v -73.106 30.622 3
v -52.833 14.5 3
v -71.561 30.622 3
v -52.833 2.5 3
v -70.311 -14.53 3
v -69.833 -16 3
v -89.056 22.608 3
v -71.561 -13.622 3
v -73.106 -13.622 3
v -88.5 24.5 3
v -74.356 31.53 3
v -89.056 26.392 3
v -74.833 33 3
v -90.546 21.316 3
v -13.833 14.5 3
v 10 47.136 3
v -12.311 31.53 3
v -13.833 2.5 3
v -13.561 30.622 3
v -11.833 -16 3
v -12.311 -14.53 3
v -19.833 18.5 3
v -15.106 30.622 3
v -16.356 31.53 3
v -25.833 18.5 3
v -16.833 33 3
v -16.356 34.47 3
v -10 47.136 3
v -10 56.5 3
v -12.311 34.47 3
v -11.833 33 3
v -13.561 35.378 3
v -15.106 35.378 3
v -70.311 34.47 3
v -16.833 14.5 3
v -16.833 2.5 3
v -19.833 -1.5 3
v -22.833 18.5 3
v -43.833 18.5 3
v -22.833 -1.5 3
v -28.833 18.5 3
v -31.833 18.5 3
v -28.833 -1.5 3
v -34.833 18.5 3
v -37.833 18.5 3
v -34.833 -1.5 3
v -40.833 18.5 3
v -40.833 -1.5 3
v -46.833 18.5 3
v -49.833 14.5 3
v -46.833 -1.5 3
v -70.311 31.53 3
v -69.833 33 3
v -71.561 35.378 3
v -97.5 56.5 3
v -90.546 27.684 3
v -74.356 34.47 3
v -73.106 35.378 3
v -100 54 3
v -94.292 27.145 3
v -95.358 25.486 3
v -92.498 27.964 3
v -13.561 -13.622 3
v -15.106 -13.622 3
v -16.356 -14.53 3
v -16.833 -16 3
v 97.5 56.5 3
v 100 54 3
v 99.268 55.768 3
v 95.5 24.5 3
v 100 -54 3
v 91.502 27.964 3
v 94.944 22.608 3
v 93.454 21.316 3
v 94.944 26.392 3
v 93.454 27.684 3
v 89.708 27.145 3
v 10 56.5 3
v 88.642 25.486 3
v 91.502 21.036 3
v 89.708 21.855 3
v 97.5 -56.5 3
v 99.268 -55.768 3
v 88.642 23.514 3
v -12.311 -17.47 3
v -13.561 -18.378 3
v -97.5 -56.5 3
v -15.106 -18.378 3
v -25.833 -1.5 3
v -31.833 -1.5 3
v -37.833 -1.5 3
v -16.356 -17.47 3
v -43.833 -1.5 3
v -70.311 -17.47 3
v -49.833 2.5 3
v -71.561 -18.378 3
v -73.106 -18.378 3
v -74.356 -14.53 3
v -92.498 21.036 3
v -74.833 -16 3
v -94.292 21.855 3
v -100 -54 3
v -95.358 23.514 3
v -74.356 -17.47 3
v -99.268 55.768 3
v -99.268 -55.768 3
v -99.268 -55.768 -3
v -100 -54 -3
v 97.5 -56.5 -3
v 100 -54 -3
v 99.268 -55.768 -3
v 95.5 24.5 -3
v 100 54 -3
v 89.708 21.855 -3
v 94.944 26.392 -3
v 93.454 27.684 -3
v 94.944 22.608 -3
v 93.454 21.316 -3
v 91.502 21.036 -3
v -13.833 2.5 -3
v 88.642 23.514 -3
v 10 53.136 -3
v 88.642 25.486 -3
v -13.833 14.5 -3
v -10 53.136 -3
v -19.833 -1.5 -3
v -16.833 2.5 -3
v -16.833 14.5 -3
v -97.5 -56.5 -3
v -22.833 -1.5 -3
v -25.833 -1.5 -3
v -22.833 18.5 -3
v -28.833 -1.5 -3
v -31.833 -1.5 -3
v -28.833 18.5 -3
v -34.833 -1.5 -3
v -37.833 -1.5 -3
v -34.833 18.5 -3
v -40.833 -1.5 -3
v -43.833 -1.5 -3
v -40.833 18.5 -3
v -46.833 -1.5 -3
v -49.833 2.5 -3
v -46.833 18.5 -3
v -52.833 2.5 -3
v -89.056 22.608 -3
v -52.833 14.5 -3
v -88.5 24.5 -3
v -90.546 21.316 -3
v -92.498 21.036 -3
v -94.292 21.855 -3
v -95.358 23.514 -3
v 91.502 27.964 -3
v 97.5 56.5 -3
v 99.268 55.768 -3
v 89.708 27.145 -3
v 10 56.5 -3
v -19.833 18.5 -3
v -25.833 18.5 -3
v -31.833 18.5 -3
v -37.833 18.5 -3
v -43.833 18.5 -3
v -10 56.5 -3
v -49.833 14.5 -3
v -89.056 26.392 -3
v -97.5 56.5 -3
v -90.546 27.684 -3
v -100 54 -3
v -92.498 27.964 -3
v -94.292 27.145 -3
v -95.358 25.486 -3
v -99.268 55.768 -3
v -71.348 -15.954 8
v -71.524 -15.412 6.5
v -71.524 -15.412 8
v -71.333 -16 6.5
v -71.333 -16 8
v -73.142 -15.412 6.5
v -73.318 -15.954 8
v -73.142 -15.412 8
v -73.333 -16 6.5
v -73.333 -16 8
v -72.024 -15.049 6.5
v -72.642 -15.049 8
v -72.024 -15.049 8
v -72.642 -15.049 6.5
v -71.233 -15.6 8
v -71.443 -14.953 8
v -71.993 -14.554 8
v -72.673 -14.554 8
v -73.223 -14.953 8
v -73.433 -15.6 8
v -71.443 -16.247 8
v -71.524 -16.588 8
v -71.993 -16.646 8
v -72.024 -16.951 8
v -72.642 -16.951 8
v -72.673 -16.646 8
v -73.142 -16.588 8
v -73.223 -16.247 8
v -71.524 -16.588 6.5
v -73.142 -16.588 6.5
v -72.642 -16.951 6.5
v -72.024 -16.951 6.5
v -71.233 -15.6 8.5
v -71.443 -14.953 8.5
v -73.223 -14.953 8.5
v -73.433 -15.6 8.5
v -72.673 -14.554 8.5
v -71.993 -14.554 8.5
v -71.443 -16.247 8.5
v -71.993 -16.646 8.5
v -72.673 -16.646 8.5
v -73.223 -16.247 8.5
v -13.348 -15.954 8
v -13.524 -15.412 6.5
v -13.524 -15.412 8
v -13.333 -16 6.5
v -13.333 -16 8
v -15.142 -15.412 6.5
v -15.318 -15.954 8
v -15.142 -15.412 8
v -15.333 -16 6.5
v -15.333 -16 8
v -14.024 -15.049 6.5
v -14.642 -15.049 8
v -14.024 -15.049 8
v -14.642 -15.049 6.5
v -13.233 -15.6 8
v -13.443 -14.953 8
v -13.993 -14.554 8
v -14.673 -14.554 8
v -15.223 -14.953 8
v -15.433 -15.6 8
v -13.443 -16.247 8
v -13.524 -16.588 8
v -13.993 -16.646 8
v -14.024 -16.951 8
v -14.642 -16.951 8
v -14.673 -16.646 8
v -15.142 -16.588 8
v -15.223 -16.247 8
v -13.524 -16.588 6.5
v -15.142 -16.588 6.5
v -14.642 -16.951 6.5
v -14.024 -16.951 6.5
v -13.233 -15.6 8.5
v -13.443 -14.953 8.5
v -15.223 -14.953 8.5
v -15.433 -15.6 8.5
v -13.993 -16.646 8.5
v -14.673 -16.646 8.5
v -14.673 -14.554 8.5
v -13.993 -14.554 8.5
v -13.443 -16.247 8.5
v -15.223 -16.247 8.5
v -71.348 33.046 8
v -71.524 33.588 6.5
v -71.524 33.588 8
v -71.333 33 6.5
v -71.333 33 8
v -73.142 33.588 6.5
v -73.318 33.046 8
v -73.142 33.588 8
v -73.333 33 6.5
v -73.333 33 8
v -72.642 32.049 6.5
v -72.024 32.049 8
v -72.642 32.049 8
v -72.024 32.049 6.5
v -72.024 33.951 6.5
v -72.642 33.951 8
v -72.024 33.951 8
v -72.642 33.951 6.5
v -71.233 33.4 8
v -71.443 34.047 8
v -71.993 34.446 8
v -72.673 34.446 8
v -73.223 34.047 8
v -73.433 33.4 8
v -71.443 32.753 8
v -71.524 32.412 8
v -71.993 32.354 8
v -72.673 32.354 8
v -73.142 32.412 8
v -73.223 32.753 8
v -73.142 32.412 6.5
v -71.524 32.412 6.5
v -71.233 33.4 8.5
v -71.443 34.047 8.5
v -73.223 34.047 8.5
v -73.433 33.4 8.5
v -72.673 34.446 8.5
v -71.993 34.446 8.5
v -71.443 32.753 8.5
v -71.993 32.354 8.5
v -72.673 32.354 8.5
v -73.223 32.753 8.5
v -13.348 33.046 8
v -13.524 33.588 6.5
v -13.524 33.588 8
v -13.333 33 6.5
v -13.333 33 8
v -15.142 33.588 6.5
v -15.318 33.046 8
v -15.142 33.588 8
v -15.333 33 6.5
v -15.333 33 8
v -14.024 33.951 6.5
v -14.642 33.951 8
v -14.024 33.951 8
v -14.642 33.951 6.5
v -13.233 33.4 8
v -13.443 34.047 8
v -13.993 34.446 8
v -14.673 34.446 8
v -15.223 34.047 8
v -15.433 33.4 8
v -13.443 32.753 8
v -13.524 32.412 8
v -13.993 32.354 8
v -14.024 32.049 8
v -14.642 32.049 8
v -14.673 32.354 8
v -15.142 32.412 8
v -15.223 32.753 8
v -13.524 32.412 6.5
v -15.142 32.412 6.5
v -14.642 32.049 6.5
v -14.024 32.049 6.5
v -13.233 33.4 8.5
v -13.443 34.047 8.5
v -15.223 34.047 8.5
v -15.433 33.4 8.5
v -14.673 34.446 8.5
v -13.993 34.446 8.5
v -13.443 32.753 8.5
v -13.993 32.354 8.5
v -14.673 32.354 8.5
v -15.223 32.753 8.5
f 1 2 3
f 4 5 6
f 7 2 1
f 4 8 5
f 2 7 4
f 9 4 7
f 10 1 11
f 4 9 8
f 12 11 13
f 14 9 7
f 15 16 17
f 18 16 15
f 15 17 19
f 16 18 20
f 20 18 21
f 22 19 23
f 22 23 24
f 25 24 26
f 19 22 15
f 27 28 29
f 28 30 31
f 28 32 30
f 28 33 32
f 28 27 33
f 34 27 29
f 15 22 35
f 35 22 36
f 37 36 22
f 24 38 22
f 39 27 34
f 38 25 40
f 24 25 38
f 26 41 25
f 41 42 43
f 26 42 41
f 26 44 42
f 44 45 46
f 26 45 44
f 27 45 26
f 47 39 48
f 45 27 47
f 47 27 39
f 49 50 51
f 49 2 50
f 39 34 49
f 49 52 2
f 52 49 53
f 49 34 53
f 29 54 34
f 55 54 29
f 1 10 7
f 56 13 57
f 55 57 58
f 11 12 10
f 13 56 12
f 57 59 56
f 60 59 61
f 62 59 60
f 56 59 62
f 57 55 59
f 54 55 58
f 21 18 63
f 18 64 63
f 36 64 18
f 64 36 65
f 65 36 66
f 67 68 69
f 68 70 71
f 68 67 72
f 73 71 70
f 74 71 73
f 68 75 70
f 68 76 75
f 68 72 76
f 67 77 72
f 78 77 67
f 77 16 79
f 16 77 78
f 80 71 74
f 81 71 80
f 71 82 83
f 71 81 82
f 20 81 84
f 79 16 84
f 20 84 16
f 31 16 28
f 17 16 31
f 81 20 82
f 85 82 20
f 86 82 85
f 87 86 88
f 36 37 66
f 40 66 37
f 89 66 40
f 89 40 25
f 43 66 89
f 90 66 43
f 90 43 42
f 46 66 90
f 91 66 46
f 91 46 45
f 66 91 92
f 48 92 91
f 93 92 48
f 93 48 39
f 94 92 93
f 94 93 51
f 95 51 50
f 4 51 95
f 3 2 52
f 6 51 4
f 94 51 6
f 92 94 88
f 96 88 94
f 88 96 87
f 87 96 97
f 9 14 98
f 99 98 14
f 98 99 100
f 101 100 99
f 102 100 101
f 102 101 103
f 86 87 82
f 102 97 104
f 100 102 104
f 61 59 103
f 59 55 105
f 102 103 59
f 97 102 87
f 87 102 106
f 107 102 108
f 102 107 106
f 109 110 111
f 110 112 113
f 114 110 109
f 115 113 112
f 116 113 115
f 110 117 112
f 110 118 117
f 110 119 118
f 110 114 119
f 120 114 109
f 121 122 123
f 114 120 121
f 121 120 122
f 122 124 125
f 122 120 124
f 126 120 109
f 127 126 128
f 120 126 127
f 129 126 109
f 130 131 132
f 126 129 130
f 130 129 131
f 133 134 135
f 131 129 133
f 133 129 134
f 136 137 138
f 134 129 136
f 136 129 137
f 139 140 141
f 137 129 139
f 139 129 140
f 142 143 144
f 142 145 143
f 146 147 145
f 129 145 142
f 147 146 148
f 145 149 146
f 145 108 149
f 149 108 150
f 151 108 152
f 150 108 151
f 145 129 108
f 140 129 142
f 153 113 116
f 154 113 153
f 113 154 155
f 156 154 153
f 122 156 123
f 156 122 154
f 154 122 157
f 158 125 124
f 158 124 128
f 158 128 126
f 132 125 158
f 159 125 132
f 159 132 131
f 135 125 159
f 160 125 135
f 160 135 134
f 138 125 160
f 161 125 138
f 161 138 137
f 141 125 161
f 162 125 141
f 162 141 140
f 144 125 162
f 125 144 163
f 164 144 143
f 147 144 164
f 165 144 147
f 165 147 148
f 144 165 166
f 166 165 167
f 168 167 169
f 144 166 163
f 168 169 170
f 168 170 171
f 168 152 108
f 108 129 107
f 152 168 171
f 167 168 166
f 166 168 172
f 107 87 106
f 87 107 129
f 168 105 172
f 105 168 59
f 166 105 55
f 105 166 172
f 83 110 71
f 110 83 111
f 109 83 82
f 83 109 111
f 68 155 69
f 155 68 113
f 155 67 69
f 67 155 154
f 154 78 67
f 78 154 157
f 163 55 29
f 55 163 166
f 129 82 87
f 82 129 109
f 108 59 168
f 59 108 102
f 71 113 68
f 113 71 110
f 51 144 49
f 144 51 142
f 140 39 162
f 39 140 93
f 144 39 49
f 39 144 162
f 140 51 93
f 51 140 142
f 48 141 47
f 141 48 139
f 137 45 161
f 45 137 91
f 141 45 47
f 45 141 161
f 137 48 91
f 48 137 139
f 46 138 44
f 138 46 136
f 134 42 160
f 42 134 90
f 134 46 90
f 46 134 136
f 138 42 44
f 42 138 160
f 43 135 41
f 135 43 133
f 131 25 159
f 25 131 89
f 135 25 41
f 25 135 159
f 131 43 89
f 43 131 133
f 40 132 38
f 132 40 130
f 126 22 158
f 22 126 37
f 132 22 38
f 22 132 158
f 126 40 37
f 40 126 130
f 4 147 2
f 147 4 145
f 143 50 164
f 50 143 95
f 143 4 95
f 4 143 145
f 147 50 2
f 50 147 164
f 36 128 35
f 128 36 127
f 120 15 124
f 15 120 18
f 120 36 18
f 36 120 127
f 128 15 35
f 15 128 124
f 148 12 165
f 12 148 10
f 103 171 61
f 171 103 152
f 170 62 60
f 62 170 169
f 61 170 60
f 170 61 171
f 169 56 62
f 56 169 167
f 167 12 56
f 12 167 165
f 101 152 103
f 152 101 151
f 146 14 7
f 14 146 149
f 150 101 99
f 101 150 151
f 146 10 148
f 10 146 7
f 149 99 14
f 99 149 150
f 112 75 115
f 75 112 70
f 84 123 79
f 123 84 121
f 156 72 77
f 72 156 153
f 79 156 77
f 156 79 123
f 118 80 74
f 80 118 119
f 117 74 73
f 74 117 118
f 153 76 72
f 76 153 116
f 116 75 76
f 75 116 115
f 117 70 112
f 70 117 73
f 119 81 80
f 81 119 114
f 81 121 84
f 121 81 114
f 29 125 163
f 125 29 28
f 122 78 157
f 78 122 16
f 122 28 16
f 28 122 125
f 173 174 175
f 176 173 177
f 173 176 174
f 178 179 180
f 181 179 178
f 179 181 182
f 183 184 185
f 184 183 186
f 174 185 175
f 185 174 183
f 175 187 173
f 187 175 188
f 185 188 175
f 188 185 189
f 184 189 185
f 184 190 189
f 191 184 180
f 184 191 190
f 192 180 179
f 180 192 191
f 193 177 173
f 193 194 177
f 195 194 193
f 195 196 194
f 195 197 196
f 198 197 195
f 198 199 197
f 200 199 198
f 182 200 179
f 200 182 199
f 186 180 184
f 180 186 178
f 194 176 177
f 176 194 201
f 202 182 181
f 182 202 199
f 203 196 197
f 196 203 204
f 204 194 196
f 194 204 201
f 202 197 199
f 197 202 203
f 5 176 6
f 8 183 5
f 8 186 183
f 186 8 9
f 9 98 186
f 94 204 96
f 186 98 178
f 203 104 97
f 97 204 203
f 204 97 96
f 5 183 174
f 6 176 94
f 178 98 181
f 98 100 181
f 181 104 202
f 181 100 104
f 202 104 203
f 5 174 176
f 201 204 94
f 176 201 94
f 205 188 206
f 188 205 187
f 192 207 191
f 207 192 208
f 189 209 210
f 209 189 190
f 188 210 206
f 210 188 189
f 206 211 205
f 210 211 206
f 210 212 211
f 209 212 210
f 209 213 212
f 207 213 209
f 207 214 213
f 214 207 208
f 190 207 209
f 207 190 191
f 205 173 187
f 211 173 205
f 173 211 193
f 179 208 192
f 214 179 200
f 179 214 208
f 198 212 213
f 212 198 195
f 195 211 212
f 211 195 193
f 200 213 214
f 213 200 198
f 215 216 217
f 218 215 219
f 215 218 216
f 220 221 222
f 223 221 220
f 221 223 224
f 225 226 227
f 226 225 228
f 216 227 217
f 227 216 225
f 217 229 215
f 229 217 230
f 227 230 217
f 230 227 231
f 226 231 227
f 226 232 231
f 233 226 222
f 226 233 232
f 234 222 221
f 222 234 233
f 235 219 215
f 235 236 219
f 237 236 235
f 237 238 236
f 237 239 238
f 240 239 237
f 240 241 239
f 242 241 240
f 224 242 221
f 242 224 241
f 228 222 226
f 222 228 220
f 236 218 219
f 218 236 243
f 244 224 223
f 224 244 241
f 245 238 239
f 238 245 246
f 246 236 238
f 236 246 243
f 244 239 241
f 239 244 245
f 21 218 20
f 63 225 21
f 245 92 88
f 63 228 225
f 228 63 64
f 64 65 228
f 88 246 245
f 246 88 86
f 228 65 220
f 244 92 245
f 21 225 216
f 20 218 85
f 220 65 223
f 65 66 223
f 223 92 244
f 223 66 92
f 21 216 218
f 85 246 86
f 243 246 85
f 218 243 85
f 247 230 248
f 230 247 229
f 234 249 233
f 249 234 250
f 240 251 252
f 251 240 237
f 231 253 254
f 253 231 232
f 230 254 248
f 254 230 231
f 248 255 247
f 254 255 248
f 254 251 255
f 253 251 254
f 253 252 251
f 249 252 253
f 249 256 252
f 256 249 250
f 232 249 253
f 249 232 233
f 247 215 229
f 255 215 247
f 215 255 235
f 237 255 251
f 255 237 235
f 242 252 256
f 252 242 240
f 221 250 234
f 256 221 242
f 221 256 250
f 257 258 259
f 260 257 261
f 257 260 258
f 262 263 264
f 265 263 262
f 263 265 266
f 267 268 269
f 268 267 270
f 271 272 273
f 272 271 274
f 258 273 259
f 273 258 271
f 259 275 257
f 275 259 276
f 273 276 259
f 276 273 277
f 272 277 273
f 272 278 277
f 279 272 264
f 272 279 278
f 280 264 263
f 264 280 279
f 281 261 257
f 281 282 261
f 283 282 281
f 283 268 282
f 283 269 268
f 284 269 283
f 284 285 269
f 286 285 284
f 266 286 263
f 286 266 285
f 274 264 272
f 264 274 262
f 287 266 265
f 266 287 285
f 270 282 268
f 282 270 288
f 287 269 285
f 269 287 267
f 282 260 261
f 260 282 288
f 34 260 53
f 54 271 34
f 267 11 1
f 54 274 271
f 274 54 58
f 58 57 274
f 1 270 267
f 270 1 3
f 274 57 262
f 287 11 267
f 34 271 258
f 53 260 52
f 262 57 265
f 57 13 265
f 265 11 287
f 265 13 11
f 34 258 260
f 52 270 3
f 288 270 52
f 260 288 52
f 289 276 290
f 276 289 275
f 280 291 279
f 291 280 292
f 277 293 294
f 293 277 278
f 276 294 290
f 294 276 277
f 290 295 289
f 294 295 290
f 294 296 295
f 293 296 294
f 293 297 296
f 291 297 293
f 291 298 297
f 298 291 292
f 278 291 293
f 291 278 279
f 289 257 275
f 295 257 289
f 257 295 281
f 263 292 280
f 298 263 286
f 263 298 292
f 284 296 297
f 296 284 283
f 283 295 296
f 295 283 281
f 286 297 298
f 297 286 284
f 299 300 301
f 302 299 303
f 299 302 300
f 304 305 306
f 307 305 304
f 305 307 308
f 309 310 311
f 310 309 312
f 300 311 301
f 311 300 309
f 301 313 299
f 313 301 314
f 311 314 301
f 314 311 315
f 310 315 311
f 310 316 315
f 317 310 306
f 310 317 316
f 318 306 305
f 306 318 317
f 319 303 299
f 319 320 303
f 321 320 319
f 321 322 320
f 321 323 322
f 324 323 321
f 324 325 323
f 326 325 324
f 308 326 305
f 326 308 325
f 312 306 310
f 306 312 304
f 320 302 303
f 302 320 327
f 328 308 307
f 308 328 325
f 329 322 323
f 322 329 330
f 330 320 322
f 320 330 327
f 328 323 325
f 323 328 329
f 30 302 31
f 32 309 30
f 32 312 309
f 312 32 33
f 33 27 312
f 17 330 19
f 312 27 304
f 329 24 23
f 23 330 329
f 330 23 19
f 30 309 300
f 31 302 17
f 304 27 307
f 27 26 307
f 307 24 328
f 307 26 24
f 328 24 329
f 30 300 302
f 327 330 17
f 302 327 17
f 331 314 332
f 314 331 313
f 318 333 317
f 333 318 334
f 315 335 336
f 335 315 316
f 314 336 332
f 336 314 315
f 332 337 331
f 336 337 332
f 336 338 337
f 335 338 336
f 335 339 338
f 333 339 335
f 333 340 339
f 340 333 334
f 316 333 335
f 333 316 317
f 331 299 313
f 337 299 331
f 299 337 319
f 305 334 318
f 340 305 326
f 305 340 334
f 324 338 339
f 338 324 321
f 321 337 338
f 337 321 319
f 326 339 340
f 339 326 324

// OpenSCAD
// file: lib/PiHole/PiHole.scad
//Shut your Pi Hole! 
//An OpenSCAD library to assist with designing Raspberry Pi accessories

//This work is licensed under the Creative Commons Attribution-ShareAlike 4.0 International License. To view a copy of this license, visit http://creativecommons.org/licenses/by-sa/4.0/.
//© 2016 Dale Price

//Pi dimensions sourced from https://www.raspberrypi.org/documentation/hardware/raspberrypi/mechanical/
//Currently supports "1B", "1A+", "1B+", "2B", "3B", "Zero"

//get vector of [x,y] vectors of locations of mounting holes based on Pi version
function piHoleLocations (board="3B") = 
	(board=="1A+" || board=="1B+" || board=="2B" || board=="3B") ?
		[[3.5, 3.5], [61.5, 3.5], [3.5, 52.5], [61.5, 52.5]] : //pi 1B+, 2B, 3B
	(board=="Zero") ?
		[[3.5, 3.5], [61.5, 3.5], [3.5, 26.5], [61.5, 26.5]] : //pi zero
	(board=="1B") ?
		[[80, 43.5], [25, 17.5]] :
	[]; //invalid board

//get vector of [x,y,z] dimensions of board
//	dimensions are for PCB only, not ports or anything else
function piBoardDim (board="3B") =
	(board=="1B" || board=="1B+" || board=="2B" || board=="3B") ?
		[85, 56, 1.25] :
	(board=="Zero") ?
		[65, 30, 1.25] :
	(board == "1A+") ?
		[65, 56, 1.25] :
	[0,0,0];

//Mounting holes for a Raspberry Pi of the specified version
//	Parameters
//		board: the version of the raspberry pi to generate holes for
//		depth: the depth of the holes in mm
module piHoles (board, depth = 5, preview=true) {
	hd = 2.8; //radius of pi mounting holes plus a tiny bit extra to account for shrinkage when 3D printing
	hr = hd/2;

	//preview of the board itself
	if(preview==true)
		% piBoard(board);
	
	//mounting holes
	for(holePos = piHoleLocations(board)) {
		translate([holePos[0], holePos[1], -depth]) cylinder(d=hd, h=depth);
	}
}

//Preview of board dimensions for Raspberry Pi of the specified version
module piBoard (board) {
	difference() {
		cube(piBoardDim(board), center=false);
		translate([0,0,piBoardDim(board)[2] + 0.01]) piHoles(board, piBoardDim(board)[2] + 0.02, false);
	}

	//warn about possible inaccuracy of boards that don't currently have official documentation
	if(board == "1B") {
		echo("CAUTION: The mounting hole positions for the board you have selected may not be accurate because the Raspberry Pi Foundation does not currently provide official mechanical drawings for it.");
	}
}

//Snap-fit posts for mounting the Raspberry Pi
//	Parameters
//		board: version of the raspberry pi to mount
//		height: height of the top surface of the raspberry pi board off the base of the posts
//		preview: whether or not to show a preview of the board in place
module piPosts(board, height=5, preview=true) {
	piSize = piBoardDim(board);
	piHolePos = piHoleLocations(board);

	module pcbPost(height) {
		cylinder(d=2, h=height);
		cylinder(d1=5, d2=2, h=height - piSize[2] - 0.25);

		translate([0, 0.4, height]) scale([1.1, 1.1, 1]) cylinder(d=2, h=0.5);
	}
	
	for(holePos = piHolePos) {
		translate([holePos[0], holePos[1], 0]) pcbPost(height);
	}

	if(preview==true)
		% translate([0,0,height-piSize[2]]) piBoard(board);
}

color("DarkGreen", 1, $fn=20) {
	piBoard("3B");
    piPosts("3B");
}
// main file
/*
PiPlate for Rostock Max
© 2016 Dale Price daprice@mac.com

	This program is free software: you can redistribute it and/or modify
    it under the terms of the GNU Affero General Public License as published
    by the Free Software Foundation, either version 3 of the License, or
    (at your option) any later version.

    This program is distributed in the hope that it will be useful,
    but WITHOUT ANY WARRANTY; without even the implied warranty of
    MERCHANTABILITY or FITNESS FOR A PARTICULAR PURPOSE.  See the
    GNU Affero General Public License for more details.

    You should have received a copy of the GNU Affero General Public License
    along with this program.  If not, see <http://www.gnu.org/licenses/>.
*/

//---------------------
//      Settings
//---------------------

/* [Printer Config (default: Rostock Max v2)] */

//the width of the Rostock Max side panel (mm)
panelWidth = 200;

//the height of the Rostock Max side panel
panelHeight = 113;

//the thickness of the Rostock Max side panel
panelThickness = 6;

/* [Raspberry Pi options] */

//whether to include bits for camera mounting
camera = "Pi Camera"; // [No camera, Pi Camera]

//Raspberry Pi version
piVersion = "3B"; // [1B, 1B+, 1A+, 2B, 3B, Zero]

//The style of vent holes you want
vent = "Slots"; // [No Vent, Slots]

//Any text that you want on the panel, e.g. the hostname of the Pi
text = "rostockpi.local";


include <MCAD/boxes.scad> //used for the base shape of the RoMax side panel
use <lib/PiHole/PiHole.scad> //used for the raspberry pi mount

piSize = piBoardDim(piVersion);
piPos = [-piSize[0]/2 - panelWidth/6, -piSize[1] + panelHeight/2 - 20, panelThickness/2];

difference() {
	//basic shape of romax side panel
	roundedBox([panelWidth, panelHeight, panelThickness],2.5,true);
	
	//screw holes in side panel
	translate([-panelWidth / 2 + 8, panelHeight / 2 - 32, 0]) cylinder(d=7, h=panelThickness, center=true);
	translate([panelWidth / 2 - 8, panelHeight / 2 - 32, 0]) cylinder(d=7, h=panelThickness, center=true);

	//slot for camera if applicable
	if(camera == "Pi Camera") {
		translate([0, panelHeight / 2, 0]) rotate([45,0,0]) cube([20,panelThickness*1.5,100], center=true);
	}

	if(vent == "Slots") {
		translate([piPos[0] + piSize[0]/2, piPos[1] + piSize[1] / 2, 0]) {
			translate([-18,0,0]) cube([3,12,20], center=true);
			for(x = [-12:6:12]) {
				translate([x, 0, 0]) cube([3, 20, 20], center=true);
			}
			translate([18,0,0]) cube([3,12,20], center=true);
		}
	}
}

//raspberry pi mounting
translate(piPos) {
	% translate([0,0,5 - piSize[2]]) piBoard(piVersion);
	
	$fn=10;
	for(holePos = piHoleLocations(piVersion)) {
		translate([holePos[0], holePos[1], 0]) {
			cylinder(d=2, h=5);
			cylinder(d1=5, d2=2, h=5 - piSize[2] - 0.25);

			translate([0, 0.4, 5]) scale([1.1, 1.1, 1]) cylinder(d=2, h=0.5);
		}
	}
}
